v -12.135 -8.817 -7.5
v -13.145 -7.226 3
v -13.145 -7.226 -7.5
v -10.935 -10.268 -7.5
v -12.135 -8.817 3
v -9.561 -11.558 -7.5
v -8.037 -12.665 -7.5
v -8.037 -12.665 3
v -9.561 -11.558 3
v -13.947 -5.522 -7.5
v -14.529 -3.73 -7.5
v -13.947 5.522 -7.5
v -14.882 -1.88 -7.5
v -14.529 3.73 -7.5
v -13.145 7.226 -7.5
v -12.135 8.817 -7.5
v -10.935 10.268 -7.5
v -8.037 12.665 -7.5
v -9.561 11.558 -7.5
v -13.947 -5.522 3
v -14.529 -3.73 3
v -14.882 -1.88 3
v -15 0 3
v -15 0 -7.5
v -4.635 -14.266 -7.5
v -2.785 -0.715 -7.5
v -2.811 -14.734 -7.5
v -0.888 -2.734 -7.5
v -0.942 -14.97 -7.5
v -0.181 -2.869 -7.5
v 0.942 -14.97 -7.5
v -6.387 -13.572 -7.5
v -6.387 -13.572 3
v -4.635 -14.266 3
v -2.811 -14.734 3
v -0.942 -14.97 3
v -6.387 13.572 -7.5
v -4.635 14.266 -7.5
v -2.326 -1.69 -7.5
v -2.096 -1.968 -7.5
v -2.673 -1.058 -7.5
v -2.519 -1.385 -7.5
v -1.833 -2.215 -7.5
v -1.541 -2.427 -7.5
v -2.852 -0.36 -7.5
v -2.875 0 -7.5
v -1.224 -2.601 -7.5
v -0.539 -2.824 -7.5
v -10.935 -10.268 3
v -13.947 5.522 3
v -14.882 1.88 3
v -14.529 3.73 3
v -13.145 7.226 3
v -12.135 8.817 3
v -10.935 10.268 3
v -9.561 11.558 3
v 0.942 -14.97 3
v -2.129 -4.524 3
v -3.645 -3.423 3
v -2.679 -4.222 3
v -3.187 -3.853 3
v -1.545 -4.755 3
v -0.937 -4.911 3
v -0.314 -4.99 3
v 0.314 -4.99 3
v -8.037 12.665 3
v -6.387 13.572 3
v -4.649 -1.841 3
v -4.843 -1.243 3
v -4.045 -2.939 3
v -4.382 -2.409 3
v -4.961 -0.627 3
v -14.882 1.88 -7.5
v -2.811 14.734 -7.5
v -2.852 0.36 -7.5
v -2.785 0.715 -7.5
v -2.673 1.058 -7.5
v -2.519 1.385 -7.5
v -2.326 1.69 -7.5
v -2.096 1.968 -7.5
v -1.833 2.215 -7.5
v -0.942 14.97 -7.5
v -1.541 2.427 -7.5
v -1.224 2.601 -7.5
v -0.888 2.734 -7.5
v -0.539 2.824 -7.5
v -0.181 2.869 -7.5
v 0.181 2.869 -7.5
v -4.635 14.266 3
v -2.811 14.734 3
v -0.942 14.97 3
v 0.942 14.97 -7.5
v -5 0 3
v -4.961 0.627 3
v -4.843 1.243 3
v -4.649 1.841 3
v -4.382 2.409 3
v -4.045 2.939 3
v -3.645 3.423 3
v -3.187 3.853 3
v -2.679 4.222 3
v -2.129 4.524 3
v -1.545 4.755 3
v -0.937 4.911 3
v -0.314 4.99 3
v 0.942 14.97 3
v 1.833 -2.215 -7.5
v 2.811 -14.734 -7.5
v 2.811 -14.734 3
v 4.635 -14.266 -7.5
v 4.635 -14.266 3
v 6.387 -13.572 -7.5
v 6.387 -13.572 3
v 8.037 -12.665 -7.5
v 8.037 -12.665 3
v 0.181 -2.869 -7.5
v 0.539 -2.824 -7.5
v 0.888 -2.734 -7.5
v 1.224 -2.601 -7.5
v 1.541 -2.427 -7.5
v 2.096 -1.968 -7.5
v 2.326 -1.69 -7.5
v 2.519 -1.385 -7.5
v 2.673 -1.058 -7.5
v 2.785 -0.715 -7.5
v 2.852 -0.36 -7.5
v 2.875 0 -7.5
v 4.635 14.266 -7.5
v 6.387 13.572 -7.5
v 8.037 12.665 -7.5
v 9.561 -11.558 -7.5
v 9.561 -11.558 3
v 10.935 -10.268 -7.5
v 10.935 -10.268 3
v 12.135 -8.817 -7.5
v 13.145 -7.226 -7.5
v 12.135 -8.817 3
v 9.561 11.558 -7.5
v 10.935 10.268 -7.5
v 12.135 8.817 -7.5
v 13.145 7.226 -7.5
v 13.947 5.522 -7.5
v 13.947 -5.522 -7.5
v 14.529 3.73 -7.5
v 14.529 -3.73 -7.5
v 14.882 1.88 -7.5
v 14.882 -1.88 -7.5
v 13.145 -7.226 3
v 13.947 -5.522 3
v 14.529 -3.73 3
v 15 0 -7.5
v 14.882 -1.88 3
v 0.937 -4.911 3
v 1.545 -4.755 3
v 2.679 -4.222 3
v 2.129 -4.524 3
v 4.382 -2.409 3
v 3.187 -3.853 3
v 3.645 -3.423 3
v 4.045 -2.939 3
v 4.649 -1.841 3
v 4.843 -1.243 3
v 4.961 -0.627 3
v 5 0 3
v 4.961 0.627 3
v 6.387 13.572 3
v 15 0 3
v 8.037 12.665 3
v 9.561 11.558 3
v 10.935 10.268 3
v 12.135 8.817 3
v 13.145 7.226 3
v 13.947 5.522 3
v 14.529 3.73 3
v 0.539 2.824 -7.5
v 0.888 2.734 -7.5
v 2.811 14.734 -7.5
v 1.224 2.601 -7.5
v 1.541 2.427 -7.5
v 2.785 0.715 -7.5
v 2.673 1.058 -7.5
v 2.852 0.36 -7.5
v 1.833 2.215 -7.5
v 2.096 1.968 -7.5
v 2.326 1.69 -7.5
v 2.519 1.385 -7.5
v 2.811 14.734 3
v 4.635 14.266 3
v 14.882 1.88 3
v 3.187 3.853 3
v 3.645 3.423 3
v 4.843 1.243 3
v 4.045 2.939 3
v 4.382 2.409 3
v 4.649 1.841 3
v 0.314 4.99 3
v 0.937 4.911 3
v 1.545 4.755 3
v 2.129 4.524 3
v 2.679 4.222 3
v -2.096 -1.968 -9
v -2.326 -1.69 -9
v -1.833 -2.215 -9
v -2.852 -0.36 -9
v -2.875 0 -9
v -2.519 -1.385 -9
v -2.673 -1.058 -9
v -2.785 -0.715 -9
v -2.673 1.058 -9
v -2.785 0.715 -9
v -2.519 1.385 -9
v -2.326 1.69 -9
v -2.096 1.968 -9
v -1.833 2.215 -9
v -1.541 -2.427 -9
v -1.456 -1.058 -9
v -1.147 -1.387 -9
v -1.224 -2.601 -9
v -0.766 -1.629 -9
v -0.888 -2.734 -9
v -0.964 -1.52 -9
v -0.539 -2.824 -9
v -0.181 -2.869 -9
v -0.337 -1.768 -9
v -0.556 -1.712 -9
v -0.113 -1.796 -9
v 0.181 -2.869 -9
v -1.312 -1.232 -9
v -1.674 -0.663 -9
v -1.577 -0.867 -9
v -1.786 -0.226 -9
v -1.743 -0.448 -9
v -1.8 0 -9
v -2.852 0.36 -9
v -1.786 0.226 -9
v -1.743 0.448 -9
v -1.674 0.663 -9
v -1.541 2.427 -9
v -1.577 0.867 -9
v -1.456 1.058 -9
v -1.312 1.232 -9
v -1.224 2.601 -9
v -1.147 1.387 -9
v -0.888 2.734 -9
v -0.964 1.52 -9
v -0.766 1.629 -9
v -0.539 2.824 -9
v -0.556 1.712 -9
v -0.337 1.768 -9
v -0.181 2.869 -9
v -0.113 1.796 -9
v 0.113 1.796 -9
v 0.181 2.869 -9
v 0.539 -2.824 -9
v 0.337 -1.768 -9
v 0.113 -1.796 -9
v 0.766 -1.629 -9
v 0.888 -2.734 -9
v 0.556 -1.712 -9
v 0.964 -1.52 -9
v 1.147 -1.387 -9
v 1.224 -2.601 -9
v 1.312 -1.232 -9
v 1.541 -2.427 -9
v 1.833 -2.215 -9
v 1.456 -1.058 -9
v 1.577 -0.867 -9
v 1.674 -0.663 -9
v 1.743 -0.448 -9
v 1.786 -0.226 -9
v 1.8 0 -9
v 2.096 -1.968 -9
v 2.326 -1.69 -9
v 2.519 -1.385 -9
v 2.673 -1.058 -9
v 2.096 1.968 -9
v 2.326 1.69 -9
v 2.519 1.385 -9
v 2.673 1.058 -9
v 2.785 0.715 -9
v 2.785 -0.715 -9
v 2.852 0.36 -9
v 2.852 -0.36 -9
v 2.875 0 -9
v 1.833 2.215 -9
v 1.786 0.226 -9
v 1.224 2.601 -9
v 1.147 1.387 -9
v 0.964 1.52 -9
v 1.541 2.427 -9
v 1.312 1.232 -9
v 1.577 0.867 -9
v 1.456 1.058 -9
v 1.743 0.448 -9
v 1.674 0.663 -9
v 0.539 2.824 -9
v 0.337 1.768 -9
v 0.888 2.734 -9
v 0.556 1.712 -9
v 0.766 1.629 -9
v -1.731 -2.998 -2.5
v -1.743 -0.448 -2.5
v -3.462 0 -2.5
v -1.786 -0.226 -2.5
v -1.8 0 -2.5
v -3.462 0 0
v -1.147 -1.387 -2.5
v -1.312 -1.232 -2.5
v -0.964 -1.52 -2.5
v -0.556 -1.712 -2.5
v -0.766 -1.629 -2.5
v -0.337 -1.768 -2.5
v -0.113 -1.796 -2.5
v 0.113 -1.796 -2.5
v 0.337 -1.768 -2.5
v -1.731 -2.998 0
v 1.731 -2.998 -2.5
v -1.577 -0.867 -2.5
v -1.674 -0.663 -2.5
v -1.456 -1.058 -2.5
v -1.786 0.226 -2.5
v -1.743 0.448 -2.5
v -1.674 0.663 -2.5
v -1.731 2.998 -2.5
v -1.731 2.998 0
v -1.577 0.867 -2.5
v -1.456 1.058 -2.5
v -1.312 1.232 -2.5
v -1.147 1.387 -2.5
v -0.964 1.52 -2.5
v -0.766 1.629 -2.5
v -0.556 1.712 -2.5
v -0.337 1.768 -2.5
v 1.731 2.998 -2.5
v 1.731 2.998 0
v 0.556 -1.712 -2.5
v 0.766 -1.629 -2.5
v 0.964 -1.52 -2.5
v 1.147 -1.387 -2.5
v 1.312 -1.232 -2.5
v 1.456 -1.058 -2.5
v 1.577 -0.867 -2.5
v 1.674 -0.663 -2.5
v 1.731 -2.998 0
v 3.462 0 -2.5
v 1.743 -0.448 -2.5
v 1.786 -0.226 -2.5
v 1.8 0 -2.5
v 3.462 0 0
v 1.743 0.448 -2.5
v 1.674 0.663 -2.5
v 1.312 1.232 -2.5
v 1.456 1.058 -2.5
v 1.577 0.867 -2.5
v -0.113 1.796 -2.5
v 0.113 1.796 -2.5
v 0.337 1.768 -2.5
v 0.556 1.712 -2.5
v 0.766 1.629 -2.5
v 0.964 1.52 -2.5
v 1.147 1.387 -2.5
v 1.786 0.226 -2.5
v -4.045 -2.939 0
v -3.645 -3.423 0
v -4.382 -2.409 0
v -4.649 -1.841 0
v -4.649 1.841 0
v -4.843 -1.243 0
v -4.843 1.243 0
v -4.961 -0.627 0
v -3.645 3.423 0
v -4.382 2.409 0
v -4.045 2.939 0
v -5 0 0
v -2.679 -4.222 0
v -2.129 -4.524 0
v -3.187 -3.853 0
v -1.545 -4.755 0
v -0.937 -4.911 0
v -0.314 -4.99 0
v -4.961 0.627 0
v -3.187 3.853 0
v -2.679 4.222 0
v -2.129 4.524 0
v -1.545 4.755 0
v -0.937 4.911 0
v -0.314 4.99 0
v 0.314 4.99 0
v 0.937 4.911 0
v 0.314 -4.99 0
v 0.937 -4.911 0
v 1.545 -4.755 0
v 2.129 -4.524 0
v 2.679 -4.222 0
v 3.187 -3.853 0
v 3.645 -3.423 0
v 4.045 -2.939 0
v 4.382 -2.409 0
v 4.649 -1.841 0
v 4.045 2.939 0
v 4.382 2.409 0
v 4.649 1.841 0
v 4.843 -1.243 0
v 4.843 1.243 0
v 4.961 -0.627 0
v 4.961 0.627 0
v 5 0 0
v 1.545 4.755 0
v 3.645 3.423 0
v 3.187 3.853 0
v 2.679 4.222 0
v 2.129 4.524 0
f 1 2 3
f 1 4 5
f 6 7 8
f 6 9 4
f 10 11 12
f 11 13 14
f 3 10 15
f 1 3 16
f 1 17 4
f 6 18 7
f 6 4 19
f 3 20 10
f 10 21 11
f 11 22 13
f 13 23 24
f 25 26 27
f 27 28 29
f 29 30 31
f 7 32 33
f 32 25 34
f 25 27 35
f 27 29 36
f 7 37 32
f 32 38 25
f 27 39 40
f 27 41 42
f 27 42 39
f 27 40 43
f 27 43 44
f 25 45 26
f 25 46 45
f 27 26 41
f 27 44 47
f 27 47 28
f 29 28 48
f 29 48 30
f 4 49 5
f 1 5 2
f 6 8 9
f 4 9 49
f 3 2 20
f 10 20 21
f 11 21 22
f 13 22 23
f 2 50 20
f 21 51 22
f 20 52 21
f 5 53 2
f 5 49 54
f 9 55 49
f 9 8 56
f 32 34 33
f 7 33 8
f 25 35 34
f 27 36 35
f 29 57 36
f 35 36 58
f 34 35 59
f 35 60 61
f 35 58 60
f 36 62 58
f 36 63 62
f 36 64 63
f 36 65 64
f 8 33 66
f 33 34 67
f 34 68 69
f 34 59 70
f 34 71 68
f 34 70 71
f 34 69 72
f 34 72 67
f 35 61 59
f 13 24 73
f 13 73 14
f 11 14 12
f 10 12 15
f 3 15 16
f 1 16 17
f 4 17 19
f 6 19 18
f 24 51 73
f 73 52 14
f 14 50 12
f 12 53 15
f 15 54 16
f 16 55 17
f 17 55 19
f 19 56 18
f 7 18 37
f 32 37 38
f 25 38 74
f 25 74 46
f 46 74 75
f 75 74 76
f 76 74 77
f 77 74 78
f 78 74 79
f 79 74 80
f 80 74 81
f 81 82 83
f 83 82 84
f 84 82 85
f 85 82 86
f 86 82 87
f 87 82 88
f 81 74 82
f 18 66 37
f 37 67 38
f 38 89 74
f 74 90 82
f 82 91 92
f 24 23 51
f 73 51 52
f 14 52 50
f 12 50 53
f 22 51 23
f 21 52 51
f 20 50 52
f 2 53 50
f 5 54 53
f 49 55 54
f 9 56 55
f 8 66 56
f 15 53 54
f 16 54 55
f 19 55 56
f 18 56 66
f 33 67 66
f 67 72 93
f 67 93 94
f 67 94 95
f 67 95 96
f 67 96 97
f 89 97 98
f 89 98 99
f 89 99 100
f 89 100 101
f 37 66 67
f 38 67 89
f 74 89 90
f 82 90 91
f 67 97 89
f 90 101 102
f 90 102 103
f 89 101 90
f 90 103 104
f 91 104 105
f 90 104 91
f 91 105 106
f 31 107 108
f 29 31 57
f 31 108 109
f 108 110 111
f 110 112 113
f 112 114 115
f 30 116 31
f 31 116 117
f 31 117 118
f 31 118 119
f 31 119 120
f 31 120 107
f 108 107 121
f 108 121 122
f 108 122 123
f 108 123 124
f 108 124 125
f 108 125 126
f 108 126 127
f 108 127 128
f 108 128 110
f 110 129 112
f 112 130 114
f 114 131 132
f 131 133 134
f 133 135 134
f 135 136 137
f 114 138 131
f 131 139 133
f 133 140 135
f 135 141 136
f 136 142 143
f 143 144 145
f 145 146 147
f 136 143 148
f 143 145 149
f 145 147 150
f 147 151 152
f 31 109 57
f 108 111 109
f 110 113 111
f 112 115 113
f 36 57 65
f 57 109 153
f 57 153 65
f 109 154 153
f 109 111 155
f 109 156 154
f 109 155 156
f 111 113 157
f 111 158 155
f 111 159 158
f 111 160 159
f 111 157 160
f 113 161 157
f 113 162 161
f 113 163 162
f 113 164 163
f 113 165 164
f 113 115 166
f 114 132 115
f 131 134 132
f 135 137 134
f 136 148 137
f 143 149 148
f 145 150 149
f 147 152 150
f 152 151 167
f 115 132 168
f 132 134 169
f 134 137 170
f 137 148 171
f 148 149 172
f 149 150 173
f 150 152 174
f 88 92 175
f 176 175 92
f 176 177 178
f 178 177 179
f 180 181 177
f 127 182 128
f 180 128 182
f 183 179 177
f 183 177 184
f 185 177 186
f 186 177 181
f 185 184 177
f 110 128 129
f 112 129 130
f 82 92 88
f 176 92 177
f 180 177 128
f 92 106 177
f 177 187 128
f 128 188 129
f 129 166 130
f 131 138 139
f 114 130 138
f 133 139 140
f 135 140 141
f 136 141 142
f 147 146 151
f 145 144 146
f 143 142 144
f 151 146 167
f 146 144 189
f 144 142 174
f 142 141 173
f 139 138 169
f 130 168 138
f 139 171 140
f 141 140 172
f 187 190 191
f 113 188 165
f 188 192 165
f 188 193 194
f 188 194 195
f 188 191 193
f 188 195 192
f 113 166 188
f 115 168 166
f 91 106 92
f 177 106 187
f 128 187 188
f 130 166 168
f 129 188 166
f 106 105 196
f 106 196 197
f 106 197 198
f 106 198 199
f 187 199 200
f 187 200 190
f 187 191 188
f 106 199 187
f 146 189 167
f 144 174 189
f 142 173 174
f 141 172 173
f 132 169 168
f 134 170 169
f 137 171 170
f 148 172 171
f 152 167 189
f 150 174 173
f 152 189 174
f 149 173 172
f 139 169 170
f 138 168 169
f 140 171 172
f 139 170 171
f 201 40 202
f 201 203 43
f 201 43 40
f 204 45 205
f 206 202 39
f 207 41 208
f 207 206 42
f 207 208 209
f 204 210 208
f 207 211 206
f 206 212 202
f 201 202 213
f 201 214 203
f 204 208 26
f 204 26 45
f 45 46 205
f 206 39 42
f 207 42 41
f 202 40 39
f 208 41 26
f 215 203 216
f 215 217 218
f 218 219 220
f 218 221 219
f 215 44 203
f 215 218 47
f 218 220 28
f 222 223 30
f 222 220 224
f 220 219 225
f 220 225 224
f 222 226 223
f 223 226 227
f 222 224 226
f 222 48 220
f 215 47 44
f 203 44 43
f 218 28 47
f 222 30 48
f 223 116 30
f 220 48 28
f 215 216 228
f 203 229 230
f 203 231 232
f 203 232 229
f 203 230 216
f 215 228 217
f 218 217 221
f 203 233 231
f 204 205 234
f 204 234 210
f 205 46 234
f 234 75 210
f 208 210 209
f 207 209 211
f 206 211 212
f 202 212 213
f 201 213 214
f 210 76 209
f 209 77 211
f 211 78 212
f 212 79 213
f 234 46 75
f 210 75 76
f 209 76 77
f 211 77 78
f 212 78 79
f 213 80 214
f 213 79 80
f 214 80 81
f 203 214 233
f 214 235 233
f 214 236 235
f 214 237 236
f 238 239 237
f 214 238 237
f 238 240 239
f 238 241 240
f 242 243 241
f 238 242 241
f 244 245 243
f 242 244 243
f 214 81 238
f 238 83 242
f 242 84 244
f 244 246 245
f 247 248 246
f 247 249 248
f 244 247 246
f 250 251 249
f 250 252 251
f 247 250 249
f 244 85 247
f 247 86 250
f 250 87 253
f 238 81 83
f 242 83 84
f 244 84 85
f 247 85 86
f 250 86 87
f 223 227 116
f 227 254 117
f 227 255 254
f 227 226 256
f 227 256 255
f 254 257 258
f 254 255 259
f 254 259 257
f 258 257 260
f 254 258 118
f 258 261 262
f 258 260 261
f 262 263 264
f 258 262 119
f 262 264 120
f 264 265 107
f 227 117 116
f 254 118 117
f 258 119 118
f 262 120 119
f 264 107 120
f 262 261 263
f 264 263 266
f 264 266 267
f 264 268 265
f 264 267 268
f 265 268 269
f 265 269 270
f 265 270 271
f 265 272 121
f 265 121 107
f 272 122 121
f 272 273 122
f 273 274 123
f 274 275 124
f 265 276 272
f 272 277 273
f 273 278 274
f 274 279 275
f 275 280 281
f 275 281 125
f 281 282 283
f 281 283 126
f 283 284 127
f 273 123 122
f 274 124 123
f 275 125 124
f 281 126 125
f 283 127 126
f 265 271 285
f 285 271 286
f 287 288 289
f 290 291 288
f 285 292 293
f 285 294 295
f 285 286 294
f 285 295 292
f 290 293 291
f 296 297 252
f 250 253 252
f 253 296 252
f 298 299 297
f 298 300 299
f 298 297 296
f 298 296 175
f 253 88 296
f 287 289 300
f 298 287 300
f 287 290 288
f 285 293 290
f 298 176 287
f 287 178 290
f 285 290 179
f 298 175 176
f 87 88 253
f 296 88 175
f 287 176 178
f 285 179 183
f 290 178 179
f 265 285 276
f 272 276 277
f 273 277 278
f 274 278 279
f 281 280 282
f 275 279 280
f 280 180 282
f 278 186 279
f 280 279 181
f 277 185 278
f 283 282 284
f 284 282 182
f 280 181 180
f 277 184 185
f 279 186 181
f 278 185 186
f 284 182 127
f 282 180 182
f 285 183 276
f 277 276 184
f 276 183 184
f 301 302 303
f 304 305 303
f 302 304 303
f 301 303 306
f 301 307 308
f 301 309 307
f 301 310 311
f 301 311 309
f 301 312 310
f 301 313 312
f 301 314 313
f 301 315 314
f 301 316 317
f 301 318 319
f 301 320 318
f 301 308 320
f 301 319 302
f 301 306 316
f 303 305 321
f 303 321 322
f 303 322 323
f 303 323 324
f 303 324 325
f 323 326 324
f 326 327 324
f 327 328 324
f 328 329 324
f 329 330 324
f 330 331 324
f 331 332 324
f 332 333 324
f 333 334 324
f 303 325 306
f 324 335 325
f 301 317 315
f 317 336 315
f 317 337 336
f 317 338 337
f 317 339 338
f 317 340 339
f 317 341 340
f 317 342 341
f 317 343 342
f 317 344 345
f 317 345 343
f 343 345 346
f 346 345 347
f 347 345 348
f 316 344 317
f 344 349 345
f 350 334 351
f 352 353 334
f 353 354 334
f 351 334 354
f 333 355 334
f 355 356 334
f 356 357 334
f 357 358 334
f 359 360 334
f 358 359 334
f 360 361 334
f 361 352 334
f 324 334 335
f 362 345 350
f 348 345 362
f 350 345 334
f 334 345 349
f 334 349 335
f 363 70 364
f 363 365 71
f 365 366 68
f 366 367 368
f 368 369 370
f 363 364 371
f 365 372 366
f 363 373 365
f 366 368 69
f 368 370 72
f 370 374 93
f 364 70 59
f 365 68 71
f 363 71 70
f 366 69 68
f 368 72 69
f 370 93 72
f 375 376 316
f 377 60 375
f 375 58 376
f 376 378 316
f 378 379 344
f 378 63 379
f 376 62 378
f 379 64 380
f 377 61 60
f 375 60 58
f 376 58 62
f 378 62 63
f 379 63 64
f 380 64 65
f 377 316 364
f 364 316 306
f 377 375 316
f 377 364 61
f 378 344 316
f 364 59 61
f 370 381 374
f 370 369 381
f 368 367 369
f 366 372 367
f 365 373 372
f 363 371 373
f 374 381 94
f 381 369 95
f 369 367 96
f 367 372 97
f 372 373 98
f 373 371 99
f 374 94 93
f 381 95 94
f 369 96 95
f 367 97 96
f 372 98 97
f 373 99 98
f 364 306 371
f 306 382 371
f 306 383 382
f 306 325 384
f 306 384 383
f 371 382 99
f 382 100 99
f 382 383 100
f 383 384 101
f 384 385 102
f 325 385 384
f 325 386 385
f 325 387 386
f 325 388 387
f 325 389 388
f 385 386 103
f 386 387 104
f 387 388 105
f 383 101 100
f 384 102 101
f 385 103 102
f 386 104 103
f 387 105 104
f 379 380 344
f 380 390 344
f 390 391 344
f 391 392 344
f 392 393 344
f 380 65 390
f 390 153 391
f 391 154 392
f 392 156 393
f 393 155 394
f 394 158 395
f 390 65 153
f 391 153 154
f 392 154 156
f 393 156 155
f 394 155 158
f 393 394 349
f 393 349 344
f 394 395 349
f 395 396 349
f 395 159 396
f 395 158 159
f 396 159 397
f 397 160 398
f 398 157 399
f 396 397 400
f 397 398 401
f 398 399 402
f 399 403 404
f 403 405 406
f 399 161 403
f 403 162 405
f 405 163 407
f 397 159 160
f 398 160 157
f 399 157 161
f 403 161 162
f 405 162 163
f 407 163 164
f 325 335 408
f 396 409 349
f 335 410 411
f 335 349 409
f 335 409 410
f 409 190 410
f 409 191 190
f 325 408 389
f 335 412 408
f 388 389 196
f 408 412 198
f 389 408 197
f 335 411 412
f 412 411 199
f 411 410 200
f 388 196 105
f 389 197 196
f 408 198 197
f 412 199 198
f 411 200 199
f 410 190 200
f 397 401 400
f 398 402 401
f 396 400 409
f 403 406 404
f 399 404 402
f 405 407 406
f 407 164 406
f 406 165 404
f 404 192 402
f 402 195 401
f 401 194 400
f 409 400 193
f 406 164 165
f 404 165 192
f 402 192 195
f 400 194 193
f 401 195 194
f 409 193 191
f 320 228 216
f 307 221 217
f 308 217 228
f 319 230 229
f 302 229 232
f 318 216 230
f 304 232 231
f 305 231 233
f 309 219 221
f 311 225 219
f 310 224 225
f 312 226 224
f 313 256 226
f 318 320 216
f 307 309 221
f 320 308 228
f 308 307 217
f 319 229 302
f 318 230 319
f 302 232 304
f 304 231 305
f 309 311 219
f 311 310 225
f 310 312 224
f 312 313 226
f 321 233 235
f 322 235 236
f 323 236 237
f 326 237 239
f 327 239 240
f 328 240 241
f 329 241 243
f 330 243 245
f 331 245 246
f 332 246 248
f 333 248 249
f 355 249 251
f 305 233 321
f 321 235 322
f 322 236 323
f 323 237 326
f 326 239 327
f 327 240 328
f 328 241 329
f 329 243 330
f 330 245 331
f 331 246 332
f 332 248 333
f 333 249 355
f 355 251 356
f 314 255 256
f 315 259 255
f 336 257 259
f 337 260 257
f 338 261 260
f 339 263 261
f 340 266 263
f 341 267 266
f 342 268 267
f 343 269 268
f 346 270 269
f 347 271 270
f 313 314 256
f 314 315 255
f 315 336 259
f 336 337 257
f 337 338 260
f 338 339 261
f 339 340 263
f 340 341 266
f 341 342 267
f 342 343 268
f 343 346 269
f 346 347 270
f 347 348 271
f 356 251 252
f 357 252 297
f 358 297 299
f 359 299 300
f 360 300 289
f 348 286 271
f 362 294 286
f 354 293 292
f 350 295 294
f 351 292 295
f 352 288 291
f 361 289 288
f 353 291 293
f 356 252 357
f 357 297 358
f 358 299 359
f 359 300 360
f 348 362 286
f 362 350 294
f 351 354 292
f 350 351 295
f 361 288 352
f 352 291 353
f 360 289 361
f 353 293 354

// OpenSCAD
$fn = 50;

difference() {
	union() {
		translate(v = [0, 0, -7.5]) {
			cylinder(h = 10.5, r = 15.0);
		}
		#translate(v = [0, 0, -9.0]) {
			cylinder(h = 9, r = 2.875);
		}
	}
	union() {
		translate(v = [0, 0, 0]) {
			rotate(a = [0, 0, 0]) {
				difference() {
					union() {
						translate(v = [0, 0, -2.5]) {
							linear_extrude(height = 2.5) {
								polygon(points = [[3.4619999999999997, 0.0], [1.7310000000000003, 2.9981799479017264], [-1.7309999999999992, 2.9981799479017264], [-3.4619999999999997, 4.2397272186481365e-16], [-1.7310000000000014, -2.998179947901726], [1.7309999999999977, -2.9981799479017277]]);
							}
						}
					}
					union();
				}
			}
		}
		#cylinder(h = 3, r = 5.0);
		#translate(v = [0, 0, -100.0]) {
			cylinder(h = 200, r = 1.8);
		}
	}
}
